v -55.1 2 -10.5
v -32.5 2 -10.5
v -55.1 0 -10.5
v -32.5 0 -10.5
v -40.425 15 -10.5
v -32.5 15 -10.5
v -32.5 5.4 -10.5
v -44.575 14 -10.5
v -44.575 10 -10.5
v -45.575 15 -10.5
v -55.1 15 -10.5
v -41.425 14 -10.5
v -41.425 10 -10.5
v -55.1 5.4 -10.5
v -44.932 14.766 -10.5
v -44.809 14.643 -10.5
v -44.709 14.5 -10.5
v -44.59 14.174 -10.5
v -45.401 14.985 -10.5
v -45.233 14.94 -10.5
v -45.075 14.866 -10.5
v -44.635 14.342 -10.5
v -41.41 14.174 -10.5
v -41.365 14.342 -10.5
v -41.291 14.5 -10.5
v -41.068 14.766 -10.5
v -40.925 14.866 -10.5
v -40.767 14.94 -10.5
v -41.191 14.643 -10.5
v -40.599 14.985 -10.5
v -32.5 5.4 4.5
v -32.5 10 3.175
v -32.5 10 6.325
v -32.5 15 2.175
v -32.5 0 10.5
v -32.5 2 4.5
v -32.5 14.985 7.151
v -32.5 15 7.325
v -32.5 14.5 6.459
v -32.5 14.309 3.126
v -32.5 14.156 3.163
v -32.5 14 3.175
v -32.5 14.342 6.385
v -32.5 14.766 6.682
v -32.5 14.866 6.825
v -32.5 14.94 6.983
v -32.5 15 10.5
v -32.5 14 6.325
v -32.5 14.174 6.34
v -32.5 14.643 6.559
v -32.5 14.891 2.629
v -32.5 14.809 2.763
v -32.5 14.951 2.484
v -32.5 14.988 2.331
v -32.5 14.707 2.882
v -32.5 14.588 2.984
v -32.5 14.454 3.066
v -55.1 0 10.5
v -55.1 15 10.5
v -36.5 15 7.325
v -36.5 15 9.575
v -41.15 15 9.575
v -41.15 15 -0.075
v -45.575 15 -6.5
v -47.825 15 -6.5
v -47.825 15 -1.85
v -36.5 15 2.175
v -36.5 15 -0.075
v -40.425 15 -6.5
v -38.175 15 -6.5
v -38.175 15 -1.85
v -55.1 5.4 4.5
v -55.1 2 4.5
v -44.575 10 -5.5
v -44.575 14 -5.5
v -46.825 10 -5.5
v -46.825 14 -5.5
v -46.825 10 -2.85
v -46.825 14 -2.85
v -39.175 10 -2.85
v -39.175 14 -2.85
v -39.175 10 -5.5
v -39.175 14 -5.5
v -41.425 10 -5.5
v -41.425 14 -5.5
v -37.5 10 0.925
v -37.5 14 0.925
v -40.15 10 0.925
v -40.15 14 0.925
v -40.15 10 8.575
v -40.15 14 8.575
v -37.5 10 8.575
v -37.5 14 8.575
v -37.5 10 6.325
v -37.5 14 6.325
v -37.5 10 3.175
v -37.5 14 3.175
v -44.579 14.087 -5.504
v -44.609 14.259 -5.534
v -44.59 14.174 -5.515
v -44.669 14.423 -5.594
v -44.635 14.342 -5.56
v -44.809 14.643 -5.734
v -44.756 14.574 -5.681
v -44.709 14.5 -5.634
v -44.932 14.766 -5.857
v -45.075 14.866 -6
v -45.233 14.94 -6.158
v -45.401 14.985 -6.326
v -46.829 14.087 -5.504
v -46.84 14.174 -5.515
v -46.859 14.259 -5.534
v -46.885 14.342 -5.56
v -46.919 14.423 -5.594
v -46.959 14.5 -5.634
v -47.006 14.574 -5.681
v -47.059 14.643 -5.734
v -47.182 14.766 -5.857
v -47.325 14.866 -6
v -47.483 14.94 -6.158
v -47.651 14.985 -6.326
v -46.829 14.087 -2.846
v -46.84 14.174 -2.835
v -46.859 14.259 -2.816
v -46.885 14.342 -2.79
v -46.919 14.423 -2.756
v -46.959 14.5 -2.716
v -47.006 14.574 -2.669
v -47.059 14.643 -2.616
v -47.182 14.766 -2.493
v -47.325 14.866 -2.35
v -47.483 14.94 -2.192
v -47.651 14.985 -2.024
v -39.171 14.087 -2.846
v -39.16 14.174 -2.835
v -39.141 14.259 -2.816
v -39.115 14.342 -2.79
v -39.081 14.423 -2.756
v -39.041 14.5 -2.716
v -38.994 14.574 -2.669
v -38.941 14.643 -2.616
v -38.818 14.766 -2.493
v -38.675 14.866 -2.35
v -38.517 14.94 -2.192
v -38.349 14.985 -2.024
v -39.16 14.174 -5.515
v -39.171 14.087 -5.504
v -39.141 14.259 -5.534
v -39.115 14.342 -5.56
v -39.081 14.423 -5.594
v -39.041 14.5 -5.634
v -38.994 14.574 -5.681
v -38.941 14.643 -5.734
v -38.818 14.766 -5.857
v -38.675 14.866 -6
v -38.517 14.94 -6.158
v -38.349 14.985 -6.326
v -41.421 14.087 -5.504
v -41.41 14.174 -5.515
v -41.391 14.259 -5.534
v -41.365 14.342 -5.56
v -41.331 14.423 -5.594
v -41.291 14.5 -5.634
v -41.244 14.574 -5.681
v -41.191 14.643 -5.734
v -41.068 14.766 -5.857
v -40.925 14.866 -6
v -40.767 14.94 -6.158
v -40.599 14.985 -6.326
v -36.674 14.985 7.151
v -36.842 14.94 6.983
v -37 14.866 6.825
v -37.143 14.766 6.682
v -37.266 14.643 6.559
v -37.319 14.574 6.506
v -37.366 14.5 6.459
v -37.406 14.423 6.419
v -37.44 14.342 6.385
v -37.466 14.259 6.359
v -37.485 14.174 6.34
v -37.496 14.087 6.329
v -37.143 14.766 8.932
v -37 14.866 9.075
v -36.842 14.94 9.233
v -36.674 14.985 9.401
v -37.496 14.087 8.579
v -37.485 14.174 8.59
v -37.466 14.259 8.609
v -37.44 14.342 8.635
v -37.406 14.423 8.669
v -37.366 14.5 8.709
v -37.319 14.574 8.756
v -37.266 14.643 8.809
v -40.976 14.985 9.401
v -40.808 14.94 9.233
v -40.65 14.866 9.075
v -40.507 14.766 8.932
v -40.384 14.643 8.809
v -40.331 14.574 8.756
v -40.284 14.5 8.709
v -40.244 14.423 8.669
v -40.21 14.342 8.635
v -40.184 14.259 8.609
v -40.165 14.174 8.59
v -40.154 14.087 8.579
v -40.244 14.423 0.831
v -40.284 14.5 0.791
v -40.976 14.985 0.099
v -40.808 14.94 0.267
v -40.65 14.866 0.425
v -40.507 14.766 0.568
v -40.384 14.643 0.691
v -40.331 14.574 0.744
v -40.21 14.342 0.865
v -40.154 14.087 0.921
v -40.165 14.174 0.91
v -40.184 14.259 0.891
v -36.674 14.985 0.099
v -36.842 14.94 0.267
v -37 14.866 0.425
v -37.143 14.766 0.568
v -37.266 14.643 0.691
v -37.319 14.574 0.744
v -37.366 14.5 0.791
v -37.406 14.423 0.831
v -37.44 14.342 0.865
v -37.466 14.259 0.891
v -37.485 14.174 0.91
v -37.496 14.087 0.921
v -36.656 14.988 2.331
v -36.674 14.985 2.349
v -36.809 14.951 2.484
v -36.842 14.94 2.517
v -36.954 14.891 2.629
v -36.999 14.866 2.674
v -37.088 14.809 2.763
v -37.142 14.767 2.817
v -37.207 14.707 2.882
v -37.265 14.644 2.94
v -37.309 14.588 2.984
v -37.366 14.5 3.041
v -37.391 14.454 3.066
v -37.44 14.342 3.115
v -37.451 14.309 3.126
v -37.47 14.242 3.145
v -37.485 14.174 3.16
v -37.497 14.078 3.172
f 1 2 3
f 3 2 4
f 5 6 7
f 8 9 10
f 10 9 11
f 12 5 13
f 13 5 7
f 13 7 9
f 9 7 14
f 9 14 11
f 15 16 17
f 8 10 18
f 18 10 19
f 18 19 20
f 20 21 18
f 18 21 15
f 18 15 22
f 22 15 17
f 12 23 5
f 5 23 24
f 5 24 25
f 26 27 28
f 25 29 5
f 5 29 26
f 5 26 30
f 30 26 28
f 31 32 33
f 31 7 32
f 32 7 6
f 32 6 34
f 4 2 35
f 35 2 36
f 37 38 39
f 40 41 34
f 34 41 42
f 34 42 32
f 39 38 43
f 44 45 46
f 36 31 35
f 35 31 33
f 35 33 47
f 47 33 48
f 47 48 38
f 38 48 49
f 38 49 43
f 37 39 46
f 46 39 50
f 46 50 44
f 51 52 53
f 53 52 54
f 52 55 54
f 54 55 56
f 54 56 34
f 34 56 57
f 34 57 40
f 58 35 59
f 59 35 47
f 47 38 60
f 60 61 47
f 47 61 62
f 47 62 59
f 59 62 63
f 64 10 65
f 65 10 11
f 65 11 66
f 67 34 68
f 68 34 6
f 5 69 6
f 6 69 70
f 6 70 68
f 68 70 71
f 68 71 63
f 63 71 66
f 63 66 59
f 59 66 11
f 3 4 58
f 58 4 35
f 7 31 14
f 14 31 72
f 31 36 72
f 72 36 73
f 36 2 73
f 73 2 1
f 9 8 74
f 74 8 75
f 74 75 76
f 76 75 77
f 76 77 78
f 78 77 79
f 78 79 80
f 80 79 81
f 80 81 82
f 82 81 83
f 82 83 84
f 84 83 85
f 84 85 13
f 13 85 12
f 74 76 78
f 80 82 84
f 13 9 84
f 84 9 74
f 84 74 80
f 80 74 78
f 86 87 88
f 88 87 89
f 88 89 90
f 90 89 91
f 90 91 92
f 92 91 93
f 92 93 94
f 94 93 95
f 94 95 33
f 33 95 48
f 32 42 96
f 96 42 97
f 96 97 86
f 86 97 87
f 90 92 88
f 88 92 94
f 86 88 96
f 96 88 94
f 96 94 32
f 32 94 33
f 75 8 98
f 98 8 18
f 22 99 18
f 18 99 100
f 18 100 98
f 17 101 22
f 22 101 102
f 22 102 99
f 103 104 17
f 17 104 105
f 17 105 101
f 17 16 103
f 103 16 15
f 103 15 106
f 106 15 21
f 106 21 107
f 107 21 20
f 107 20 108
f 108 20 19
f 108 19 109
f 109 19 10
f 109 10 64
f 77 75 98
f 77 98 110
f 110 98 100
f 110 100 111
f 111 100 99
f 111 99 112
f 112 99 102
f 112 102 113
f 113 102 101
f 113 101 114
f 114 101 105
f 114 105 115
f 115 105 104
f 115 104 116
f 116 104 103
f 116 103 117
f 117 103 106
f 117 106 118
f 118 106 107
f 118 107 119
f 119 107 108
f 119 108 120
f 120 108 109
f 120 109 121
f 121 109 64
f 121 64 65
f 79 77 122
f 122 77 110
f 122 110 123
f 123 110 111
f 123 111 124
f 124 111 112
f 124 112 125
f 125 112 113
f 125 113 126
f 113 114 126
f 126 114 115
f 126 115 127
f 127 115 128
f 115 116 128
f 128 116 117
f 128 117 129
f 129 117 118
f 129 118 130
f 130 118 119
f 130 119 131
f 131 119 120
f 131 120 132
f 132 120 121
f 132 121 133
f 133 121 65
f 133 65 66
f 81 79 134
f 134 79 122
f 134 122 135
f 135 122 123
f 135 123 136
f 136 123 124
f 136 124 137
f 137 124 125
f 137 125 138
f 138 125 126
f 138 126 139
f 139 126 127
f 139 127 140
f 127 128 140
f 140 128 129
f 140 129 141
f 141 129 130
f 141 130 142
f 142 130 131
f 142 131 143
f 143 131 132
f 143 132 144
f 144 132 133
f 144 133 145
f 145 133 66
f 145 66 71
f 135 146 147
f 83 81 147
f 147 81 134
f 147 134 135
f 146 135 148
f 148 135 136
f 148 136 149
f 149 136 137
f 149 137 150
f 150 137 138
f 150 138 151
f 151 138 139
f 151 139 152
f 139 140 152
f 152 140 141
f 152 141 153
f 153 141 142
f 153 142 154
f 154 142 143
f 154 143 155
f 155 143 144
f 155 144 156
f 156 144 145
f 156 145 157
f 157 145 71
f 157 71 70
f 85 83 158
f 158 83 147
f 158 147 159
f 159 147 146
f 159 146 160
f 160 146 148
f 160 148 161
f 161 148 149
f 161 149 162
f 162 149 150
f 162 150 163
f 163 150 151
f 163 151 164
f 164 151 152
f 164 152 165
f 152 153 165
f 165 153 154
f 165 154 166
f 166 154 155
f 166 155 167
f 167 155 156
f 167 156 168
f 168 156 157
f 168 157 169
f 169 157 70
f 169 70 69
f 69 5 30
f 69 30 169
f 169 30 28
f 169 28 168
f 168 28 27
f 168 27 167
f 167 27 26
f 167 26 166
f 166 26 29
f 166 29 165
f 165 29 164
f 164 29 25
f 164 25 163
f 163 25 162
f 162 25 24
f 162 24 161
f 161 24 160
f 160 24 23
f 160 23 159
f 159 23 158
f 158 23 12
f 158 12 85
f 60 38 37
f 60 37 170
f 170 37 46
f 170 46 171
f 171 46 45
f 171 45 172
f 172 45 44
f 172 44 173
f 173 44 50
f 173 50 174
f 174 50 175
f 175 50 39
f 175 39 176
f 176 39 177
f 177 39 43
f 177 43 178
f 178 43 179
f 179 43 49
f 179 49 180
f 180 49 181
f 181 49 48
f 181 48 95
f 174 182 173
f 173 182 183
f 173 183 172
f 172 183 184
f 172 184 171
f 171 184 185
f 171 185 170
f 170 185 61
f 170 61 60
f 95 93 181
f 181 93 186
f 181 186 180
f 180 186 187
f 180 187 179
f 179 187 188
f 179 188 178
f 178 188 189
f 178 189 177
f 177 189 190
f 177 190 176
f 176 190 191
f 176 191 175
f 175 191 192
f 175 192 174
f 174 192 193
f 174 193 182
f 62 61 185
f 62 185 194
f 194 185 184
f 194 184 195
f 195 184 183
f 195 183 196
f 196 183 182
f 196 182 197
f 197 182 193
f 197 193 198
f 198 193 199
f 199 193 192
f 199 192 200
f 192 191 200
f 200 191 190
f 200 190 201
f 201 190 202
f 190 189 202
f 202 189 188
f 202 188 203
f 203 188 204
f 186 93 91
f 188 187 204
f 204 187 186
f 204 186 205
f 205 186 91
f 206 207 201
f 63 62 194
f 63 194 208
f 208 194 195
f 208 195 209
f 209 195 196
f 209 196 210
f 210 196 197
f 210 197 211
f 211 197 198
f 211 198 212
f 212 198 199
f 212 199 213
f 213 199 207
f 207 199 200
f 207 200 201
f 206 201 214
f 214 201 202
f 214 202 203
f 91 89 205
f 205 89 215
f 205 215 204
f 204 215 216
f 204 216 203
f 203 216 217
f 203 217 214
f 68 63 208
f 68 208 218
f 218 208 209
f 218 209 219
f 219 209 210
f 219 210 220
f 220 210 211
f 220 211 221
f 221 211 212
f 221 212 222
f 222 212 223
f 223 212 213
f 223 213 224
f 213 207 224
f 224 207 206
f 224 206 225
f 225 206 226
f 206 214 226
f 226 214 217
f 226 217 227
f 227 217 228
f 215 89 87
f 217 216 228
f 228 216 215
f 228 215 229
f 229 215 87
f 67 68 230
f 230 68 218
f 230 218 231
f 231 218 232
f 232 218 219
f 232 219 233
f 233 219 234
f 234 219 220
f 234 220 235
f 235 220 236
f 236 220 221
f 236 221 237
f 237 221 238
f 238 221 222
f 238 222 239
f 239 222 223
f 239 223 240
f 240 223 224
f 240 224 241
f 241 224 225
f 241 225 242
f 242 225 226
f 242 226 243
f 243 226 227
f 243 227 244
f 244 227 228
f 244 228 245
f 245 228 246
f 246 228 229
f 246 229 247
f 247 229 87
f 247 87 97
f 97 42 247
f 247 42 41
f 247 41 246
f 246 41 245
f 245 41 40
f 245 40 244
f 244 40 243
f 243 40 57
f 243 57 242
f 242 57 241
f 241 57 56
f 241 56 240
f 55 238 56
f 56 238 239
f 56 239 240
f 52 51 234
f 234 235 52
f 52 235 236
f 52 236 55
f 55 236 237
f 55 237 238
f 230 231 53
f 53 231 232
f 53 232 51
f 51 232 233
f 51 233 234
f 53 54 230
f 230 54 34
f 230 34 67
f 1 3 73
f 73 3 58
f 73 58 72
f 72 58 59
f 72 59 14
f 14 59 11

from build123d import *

# Parameters (mm, degrees)
SKETCH1_W           = 25
SKETCH1_H           = 21
BOSS_EXTRUDE1_DEPTH = 15
SKETCH2_W           = 15
SKETCH2_H           = 3.4
CUT_EXTRUDE1_DEPTH  = 22.6
CUT_EXTRUDE2_DEPTH  = 5
FILLET1_R           = 1
SKETCH4_W           = 2.4
SKETCH4_H           = 15
CUT_EXTRUDE4_DEPTH  = 64.025788373


with BuildPart() as part:
    # Sketch1 → Boss-Extrude1 (new body)
    with BuildSketch(Plane(origin=(0, 0, 0), x_dir=(1, 0, 0), z_dir=(0, 1, 0))):
        Rectangle(SKETCH1_W, SKETCH1_H)
    extrude(amount=BOSS_EXTRUDE1_DEPTH)

    # Sketch2 → Cut-Extrude1 (cut)
    with BuildSketch(Plane.ZY.offset(12.5)):
        with Locations((-3, 3.7)):
            Rectangle(SKETCH2_W, SKETCH2_H)
    extrude(amount=-CUT_EXTRUDE1_DEPTH, mode=Mode.SUBTRACT)

    # Sketch3 → Cut-Extrude2 (cut)
    with BuildSketch(Plane(origin=(0, 15, 0), x_dir=(1, 0, 0), z_dir=(0, 1, 0))):
        Polygon((-4.85, -0.925), (-4.85, -8.575), (-7.5, -8.575), (-7.5, -6.325), (-12.5, -6.325), (-12.5, -3.175), (-7.5, -3.175), (-7.5, -0.925), align=None)
        Polygon((-3.575, 10.5), (-3.575, 5.5), (-5.825, 5.5), (-5.825, 2.85), (1.825, 2.85), (1.825, 5.5), (-0.425, 5.5), (-0.425, 10.5), align=None)
    extrude(amount=-CUT_EXTRUDE2_DEPTH, mode=Mode.SUBTRACT)

    # Fillet1
    fillet1_edges = [part.edges().sort_by_distance(p)[0] for p in [
        (-6.175, 15, 0.925),
        (-7.5, 15, 2.05),
        (-10, 15, 3.175),
        (-10, 15, 6.325),
        (-7.5, 15, 7.45),
        (-6.175, 15, 8.575),
        (-4.85, 15, 4.75),
        (-3.575, 15, -8),
        (-4.7, 15, -5.5),
        (-5.825, 15, -4.175),
        (-2, 15, -2.85),
        (1.825, 15, -4.175),
        (0.7, 15, -5.5),
        (-0.425, 15, -8),
    ]]
    fillet(fillet1_edges, radius=FILLET1_R)


with BuildPart() as body_2:
    # Mirror2: mirrored copy
    add(part.part.mirror(Plane.ZY.offset(22.5)))

    # Sketch4 → Cut-Extrude4 (cut, through all)
    with BuildSketch(Plane(origin=(0, 0, -10.5), x_dir=(-1, 0, 0), z_dir=(0, 0, -1))):
        with Locations((56.3, 7.5)):
            Rectangle(SKETCH4_W, SKETCH4_H)
    extrude(amount=-CUT_EXTRUDE4_DEPTH, mode=Mode.SUBTRACT)


solid = body_2.part
